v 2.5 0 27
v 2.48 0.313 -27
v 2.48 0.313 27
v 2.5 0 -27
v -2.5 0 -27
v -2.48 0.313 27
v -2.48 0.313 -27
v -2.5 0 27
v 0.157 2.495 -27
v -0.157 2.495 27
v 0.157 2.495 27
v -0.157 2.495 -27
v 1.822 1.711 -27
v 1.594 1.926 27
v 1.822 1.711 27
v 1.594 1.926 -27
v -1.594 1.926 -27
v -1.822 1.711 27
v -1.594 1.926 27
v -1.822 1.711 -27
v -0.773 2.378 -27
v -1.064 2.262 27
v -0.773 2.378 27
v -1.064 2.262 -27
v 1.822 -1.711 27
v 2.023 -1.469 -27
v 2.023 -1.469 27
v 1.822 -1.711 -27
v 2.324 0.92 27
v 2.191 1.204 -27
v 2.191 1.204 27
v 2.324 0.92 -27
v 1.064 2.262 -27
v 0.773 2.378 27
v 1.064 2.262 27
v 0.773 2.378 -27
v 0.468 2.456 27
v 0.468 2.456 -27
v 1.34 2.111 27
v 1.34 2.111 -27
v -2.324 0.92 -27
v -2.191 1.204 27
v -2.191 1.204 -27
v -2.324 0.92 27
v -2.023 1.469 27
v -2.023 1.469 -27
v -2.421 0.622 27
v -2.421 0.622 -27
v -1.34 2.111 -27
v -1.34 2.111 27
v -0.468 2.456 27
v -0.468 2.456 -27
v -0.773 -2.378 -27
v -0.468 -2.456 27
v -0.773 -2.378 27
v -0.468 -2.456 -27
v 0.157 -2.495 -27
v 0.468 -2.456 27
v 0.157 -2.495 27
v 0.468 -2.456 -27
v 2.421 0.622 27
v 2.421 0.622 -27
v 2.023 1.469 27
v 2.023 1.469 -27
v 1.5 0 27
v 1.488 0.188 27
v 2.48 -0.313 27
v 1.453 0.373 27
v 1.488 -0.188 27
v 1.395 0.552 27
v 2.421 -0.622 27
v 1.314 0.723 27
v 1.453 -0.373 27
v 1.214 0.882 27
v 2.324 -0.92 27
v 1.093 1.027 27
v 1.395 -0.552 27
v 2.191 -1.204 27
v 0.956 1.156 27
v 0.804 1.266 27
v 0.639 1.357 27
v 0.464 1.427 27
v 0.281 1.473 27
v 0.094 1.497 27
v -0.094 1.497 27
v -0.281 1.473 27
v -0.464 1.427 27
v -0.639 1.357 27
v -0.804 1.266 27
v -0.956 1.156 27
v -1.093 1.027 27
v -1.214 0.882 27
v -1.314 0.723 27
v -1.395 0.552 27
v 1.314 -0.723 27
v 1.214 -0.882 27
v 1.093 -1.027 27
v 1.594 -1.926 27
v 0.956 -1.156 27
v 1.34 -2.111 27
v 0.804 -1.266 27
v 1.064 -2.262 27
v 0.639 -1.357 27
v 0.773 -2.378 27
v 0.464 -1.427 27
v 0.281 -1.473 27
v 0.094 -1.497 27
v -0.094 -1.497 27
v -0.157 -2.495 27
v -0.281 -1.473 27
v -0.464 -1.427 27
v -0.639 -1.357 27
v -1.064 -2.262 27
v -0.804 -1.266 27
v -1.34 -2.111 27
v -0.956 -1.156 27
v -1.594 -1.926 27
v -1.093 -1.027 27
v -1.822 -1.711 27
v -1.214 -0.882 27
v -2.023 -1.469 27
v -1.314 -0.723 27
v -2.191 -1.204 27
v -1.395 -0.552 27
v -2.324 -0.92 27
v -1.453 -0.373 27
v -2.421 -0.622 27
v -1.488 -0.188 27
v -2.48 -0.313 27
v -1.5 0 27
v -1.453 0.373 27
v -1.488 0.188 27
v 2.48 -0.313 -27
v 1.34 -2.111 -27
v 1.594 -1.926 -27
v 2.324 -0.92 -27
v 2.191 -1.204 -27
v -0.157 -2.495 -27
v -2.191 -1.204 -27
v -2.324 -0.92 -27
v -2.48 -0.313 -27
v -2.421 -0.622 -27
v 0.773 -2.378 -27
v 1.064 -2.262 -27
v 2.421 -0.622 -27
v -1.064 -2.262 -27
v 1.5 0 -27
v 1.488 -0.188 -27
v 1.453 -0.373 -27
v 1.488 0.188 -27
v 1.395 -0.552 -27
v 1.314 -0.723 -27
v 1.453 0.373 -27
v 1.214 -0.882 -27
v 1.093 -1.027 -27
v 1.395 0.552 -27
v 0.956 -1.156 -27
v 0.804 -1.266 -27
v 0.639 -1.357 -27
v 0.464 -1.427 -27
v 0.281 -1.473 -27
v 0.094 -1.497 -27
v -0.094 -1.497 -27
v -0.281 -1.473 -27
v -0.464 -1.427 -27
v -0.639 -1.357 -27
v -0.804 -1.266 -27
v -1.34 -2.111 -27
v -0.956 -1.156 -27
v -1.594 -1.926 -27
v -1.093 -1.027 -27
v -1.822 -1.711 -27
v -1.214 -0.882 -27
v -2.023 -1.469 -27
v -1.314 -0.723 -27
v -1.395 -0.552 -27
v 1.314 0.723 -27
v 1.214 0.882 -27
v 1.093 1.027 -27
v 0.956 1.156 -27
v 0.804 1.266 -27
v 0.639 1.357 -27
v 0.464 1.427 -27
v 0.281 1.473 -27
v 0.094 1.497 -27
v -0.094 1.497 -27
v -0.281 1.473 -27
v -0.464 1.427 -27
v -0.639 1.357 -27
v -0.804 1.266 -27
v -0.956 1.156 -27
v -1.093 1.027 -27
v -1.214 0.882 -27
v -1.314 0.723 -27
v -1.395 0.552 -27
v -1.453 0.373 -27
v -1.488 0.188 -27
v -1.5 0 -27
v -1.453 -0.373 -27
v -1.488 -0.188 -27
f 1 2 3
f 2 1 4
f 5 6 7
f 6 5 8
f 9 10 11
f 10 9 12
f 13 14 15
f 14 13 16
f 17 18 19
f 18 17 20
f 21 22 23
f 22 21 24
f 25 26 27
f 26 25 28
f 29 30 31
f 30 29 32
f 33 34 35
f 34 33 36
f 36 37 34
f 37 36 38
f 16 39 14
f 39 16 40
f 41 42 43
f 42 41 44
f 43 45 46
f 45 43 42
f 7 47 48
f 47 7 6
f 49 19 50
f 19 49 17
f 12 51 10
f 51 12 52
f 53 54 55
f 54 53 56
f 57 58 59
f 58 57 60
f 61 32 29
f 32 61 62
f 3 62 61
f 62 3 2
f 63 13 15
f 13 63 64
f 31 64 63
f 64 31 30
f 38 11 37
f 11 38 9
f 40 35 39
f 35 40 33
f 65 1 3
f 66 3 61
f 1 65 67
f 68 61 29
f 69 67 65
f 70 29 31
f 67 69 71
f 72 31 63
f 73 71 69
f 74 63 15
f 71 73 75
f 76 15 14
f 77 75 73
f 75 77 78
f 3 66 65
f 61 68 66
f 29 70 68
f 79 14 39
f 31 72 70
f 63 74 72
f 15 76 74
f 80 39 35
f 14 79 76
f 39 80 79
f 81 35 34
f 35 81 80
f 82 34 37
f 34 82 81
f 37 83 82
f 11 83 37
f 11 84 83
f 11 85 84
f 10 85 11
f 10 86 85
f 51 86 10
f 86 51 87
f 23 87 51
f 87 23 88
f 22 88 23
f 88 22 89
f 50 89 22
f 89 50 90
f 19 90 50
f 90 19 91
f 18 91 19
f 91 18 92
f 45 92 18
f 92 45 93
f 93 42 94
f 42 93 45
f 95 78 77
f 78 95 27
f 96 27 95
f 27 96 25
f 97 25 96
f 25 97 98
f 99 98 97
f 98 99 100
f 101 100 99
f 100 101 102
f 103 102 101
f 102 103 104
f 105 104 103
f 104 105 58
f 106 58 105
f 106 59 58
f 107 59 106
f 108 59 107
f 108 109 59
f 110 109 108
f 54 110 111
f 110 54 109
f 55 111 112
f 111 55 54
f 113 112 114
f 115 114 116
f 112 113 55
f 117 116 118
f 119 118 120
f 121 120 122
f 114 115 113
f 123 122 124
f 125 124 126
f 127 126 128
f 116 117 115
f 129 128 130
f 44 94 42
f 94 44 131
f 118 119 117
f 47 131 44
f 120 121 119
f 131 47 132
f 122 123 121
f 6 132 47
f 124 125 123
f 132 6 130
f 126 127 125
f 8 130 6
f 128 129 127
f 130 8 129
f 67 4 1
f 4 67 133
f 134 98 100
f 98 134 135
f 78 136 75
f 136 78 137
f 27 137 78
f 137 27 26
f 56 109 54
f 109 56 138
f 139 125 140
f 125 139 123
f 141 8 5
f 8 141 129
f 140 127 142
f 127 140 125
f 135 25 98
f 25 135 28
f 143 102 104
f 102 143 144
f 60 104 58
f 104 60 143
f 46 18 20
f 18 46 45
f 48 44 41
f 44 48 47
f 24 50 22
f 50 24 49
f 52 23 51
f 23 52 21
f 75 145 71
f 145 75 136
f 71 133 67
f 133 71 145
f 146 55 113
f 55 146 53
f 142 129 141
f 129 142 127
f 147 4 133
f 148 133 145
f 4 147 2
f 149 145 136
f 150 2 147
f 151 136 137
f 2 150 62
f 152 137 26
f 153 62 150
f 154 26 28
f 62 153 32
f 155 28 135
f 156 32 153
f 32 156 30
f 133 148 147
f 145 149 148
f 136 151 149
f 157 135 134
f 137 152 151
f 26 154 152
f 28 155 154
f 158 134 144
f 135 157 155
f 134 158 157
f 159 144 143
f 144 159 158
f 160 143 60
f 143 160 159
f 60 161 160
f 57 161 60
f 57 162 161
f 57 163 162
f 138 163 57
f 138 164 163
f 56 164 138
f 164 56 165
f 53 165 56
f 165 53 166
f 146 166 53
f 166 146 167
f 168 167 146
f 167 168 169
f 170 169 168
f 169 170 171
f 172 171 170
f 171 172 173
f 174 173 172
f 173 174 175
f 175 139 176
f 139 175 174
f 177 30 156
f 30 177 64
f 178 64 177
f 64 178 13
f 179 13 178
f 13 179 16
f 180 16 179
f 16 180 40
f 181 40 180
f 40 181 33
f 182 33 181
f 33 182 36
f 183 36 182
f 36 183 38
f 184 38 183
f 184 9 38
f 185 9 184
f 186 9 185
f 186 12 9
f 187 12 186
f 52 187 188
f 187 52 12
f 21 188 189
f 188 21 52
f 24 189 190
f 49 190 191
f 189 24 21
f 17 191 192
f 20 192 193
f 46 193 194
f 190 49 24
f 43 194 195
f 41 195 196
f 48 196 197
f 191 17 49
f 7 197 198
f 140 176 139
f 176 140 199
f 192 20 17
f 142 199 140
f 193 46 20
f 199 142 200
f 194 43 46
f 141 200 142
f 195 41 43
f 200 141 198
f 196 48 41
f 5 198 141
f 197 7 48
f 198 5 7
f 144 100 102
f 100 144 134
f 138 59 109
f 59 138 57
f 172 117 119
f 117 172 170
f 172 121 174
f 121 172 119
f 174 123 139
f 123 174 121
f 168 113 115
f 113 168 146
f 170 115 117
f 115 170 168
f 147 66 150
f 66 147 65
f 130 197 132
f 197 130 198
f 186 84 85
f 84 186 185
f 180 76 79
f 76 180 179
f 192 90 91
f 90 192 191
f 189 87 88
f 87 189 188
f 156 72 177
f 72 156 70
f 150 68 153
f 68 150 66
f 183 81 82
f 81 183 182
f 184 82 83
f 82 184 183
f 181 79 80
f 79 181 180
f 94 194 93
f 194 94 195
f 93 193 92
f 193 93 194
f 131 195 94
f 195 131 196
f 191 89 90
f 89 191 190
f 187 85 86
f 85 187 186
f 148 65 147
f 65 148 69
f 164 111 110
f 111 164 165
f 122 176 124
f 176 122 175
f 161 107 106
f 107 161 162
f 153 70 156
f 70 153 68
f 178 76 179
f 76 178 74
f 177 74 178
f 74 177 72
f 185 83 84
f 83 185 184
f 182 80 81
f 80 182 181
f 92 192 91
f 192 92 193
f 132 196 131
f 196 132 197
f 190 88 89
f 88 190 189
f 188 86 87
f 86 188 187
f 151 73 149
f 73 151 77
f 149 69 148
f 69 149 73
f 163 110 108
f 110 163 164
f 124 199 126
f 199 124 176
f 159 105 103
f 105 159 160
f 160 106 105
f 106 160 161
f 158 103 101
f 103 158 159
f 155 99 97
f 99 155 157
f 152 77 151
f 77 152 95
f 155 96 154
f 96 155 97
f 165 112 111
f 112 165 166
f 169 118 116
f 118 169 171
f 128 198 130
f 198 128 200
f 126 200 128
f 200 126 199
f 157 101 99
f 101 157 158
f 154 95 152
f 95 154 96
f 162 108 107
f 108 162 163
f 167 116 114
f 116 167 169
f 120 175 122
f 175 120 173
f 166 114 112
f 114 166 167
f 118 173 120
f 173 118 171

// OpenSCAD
$fn = 50;


difference() {
	union() {
		translate(v = [0, 0, -27.0000000000]) {
			cylinder(h = 54, r = 2.5000000000);
		}
	}
	union() {
		translate(v = [0, 0, -100.0000000000]) {
			cylinder(h = 200, r = 1.5000000000);
		}
	}
}
